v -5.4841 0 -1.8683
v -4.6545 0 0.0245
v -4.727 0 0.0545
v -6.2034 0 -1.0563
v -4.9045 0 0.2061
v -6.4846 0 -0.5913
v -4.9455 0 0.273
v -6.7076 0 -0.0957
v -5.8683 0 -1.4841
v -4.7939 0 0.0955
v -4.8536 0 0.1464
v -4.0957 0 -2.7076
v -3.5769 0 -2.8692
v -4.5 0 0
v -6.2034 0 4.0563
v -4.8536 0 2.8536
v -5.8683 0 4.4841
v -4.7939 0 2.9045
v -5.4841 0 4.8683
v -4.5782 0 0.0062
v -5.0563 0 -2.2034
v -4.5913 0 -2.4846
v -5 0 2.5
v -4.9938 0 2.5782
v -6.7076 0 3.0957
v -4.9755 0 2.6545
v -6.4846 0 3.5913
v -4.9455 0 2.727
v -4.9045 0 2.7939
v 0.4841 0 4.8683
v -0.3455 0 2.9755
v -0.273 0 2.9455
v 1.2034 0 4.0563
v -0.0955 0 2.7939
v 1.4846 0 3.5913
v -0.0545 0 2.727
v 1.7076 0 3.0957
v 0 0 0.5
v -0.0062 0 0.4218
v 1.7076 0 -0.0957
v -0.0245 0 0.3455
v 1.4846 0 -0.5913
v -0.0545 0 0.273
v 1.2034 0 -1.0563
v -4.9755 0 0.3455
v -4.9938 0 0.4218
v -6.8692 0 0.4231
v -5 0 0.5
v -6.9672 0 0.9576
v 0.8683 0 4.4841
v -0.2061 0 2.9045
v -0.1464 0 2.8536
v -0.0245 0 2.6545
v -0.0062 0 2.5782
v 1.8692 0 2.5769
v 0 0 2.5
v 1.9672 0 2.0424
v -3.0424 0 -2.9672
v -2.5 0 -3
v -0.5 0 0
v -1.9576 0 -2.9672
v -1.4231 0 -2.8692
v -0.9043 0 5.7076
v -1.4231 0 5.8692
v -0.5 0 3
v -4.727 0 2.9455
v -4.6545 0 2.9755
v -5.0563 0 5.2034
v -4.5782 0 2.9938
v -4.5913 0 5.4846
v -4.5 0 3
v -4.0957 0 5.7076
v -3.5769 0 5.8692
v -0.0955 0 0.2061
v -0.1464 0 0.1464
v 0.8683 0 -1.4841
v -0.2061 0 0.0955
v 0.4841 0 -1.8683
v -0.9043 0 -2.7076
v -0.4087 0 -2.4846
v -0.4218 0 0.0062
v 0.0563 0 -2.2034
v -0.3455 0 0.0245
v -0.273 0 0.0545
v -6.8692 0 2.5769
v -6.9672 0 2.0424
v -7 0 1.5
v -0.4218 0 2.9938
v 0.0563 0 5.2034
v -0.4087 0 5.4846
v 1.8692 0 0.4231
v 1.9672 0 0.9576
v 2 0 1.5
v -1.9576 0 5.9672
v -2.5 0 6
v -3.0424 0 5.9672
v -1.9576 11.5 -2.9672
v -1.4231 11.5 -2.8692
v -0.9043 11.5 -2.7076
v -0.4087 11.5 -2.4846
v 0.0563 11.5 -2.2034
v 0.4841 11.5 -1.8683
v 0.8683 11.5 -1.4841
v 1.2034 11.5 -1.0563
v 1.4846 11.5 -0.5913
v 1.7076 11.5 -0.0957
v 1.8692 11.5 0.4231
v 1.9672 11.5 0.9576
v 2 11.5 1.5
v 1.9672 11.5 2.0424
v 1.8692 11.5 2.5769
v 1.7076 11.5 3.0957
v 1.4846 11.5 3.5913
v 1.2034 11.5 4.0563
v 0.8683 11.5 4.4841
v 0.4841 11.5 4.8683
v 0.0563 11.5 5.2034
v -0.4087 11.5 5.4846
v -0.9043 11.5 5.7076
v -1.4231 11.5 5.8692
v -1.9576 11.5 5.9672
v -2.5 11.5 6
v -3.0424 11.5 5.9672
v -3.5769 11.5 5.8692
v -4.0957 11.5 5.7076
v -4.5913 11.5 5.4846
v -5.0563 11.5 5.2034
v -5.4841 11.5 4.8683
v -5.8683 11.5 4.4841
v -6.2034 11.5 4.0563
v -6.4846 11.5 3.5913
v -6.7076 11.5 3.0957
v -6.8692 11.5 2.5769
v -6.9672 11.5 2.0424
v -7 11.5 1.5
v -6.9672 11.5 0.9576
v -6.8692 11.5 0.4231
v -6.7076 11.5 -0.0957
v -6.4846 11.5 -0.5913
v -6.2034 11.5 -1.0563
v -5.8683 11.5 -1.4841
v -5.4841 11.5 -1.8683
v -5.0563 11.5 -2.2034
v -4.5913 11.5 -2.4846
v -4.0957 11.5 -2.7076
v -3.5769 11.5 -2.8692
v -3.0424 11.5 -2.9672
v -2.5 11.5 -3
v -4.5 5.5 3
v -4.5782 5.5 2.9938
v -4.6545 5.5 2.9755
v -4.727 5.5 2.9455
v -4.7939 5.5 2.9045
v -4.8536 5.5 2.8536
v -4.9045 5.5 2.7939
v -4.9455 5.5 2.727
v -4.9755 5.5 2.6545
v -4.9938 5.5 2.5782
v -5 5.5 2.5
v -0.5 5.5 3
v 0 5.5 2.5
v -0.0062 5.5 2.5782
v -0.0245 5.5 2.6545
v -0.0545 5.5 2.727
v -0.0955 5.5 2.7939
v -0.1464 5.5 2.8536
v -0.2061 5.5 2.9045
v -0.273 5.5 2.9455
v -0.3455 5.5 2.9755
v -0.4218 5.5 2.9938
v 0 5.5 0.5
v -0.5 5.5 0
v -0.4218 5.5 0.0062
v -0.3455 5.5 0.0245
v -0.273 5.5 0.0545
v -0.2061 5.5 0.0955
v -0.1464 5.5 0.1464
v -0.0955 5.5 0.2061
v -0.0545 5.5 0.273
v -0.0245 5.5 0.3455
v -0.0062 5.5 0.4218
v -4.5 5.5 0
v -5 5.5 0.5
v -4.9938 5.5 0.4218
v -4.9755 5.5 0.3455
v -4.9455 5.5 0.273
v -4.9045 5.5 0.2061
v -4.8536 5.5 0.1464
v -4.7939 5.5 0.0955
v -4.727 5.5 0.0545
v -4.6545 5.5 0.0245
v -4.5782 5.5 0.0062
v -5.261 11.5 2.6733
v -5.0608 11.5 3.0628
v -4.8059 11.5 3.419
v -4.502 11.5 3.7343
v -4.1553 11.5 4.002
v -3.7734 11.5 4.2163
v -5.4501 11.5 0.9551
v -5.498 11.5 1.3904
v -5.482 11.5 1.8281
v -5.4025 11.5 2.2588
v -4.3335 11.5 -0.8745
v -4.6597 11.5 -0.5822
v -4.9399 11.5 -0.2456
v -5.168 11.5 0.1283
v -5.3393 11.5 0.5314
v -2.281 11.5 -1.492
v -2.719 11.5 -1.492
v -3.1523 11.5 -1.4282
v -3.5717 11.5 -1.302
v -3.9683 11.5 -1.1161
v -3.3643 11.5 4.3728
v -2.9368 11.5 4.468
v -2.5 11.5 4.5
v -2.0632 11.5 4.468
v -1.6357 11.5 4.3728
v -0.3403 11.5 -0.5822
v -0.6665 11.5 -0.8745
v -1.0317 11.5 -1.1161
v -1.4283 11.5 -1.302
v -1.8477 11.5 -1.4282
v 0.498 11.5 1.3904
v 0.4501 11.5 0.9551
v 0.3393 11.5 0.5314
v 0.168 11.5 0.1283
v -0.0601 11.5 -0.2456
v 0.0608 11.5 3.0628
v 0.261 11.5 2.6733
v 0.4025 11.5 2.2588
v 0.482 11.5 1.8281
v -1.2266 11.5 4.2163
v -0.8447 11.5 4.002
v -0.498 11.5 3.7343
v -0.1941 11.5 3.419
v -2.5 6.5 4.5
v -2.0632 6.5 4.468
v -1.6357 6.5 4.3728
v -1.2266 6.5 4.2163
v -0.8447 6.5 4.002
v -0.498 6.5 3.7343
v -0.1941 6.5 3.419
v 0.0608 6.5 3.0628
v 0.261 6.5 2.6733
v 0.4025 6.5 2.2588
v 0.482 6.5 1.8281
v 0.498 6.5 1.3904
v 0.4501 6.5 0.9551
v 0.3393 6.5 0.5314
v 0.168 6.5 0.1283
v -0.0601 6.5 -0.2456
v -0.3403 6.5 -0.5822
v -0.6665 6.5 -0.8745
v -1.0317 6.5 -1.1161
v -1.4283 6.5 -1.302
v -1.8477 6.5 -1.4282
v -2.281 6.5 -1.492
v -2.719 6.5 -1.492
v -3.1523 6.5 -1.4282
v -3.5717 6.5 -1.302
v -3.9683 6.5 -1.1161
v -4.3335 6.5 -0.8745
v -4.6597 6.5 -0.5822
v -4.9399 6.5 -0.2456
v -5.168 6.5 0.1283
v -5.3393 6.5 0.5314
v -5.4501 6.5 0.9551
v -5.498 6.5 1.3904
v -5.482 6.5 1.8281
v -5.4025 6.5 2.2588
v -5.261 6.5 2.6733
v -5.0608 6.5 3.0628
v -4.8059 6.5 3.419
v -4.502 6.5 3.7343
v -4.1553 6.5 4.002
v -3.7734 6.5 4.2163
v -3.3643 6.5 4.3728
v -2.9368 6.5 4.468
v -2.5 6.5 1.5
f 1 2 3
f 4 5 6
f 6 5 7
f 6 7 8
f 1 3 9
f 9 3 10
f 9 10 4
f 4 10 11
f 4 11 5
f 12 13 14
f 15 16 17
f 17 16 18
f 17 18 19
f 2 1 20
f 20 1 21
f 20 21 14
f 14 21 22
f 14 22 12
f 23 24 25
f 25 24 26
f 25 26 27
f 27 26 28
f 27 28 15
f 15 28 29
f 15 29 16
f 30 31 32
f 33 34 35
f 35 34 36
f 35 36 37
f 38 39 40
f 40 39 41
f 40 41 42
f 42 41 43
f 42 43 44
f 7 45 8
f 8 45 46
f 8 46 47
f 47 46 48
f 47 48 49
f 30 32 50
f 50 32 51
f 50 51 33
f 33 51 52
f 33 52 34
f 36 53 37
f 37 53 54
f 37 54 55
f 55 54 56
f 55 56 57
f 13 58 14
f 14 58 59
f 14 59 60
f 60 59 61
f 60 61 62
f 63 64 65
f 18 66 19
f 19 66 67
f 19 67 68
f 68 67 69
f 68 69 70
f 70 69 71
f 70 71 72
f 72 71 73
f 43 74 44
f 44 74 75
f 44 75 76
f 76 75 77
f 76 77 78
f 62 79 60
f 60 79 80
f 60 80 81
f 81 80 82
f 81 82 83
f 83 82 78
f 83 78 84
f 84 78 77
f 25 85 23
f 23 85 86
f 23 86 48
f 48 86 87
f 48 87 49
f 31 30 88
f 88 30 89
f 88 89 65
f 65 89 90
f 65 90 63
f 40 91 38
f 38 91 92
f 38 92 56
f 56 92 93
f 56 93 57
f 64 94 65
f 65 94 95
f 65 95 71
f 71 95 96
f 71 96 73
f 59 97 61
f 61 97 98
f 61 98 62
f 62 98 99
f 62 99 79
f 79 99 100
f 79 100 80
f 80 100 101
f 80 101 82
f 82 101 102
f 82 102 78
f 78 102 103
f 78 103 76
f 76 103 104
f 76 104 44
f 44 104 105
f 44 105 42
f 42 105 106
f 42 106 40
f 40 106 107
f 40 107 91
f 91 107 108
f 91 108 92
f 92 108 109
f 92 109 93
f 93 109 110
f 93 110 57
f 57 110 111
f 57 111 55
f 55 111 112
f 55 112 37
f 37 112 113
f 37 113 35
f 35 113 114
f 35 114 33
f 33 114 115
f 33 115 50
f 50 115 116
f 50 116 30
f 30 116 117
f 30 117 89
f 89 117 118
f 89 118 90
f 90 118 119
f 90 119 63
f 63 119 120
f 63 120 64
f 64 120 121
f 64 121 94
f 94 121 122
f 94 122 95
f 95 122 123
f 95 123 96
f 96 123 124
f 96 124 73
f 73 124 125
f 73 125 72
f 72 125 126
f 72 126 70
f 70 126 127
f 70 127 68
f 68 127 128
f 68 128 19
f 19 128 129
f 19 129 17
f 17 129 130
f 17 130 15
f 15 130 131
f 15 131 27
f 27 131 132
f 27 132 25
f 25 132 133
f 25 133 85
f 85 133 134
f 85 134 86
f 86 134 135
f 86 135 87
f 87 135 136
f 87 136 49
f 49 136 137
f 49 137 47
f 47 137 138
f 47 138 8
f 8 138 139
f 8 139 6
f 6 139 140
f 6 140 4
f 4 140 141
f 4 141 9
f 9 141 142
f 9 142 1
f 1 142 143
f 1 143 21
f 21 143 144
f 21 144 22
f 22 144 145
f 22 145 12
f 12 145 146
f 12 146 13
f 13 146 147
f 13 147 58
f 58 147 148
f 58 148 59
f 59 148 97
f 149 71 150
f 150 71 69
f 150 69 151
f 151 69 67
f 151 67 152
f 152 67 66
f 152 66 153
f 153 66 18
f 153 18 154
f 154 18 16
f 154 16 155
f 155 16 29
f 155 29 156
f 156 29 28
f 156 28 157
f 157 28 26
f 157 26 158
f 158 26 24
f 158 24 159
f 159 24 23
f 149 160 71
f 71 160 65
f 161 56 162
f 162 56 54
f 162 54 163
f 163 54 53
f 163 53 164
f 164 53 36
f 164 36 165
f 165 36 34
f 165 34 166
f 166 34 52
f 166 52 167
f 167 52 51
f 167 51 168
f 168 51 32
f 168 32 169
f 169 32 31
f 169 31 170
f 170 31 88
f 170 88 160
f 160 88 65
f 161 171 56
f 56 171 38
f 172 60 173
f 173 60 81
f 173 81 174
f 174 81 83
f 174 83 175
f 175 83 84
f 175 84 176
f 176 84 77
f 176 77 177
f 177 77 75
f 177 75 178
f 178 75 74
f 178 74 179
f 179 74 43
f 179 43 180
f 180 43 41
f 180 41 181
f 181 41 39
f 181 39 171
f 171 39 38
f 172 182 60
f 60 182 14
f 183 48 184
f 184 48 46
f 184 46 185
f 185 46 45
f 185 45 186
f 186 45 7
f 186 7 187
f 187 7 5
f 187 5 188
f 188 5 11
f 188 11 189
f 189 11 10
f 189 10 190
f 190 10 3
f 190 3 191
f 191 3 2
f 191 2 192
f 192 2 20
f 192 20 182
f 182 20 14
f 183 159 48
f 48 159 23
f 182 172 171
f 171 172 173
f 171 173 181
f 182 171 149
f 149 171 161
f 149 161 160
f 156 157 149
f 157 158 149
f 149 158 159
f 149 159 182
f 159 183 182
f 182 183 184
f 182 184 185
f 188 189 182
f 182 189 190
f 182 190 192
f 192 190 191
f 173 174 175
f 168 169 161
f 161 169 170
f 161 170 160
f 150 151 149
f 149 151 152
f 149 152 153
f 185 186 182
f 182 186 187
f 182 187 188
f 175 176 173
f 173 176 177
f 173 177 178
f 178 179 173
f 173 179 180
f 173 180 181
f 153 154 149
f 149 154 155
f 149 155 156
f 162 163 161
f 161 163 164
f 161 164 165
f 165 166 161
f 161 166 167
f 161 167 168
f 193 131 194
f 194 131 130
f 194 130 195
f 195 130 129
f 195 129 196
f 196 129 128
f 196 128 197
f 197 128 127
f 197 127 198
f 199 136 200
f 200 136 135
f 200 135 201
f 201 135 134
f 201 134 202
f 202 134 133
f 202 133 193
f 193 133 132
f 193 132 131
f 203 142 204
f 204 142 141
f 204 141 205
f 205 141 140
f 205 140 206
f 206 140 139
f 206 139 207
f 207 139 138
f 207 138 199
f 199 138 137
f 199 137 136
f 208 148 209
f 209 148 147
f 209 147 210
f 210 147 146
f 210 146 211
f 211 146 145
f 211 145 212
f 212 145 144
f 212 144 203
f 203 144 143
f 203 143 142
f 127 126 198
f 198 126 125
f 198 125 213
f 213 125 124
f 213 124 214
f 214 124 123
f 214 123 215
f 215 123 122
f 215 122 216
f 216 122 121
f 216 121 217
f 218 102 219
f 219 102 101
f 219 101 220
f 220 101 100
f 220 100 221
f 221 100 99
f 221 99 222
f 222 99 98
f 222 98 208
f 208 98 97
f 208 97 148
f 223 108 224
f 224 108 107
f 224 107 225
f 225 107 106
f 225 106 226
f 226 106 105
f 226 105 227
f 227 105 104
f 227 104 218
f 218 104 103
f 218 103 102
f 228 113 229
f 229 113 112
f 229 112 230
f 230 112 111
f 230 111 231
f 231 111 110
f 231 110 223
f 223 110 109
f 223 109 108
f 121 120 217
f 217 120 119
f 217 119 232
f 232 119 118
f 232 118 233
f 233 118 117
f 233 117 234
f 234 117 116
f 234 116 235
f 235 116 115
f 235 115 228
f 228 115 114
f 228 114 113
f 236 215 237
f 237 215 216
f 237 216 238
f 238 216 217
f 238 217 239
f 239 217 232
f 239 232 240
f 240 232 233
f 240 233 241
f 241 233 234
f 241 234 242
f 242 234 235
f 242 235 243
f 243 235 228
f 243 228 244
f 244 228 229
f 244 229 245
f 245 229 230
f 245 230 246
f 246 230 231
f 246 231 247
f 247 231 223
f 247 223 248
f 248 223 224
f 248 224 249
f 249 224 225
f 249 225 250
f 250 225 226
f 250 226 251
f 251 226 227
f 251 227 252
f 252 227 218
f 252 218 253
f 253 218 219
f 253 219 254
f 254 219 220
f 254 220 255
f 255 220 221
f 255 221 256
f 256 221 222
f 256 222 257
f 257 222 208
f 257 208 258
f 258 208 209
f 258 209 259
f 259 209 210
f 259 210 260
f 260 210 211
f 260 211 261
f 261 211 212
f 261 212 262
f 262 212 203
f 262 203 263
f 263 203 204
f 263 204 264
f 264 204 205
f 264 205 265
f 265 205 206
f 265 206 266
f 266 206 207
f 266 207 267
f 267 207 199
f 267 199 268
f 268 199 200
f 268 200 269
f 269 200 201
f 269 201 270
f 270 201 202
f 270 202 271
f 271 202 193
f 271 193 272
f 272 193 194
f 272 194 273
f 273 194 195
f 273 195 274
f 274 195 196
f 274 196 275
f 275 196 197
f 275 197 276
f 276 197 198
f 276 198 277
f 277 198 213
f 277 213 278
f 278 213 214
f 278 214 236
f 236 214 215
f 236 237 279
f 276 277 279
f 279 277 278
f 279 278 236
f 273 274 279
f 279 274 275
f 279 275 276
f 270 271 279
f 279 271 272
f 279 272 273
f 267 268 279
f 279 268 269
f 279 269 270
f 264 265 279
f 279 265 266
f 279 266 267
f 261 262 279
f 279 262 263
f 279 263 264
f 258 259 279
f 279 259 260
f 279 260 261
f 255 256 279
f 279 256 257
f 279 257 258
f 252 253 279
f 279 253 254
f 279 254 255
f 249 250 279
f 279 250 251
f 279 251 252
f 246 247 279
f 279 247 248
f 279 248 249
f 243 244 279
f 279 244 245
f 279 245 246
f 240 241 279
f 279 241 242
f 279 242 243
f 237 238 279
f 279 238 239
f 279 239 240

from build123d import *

# Parameters (mm, degrees)
SKETCH1_R           = 4.5
BOSS_EXTRUDE1_DEPTH = 5.5
SKETCH2_R           = 4.5
BOSS_EXTRUDE2_DEPTH = 6
SKETCH3_R           = 3
CUT_EXTRUDE1_DEPTH  = 5


with BuildPart() as part:
    # Sketch1 → Boss-Extrude1 (new body)
    with BuildSketch(Plane(origin=(0, 0, 0), x_dir=(1, 0, 0), z_dir=(0, 1, 0))):
        with Locations((-2.5, -1.5)):
            Circle(SKETCH1_R)
        with BuildLine():
            Line((-0.5, 0), (-4.5, 0))
            ThreePointArc((-4.5, 0), (-4.853553391, -0.146446609), (-5, -0.5))
            Line((-5, -0.5), (-5, -2.5))
            ThreePointArc((-5, -2.5), (-4.853553391, -2.853553391), (-4.5, -3))
            Line((-4.5, -3), (-0.5, -3))
            ThreePointArc((-0.5, -3), (-0.146446609, -2.853553391), (0, -2.5))
            Line((0, -2.5), (0, -0.5))
            ThreePointArc((0, -0.5), (-0.146446609, -0.146446609), (-0.5, 0))
        make_face(mode=Mode.SUBTRACT)
    extrude(amount=BOSS_EXTRUDE1_DEPTH)

    # Sketch2 → Boss-Extrude2 (add)
    with BuildSketch(Plane(origin=(0, 5.5, 0), x_dir=(1, 0, 0), z_dir=(0, 1, 0))):
        with Locations((-2.5, -1.5)):
            Circle(SKETCH2_R)
    extrude(amount=BOSS_EXTRUDE2_DEPTH)

    # Sketch3 → Cut-Extrude1 (cut)
    with BuildSketch(Plane(origin=(0, 11.5, 0), x_dir=(1, 0, 0), z_dir=(0, 1, 0))):
        with Locations((-2.5, -1.5)):
            Circle(SKETCH3_R)
    extrude(amount=-CUT_EXTRUDE1_DEPTH, mode=Mode.SUBTRACT)


solid = part.part
